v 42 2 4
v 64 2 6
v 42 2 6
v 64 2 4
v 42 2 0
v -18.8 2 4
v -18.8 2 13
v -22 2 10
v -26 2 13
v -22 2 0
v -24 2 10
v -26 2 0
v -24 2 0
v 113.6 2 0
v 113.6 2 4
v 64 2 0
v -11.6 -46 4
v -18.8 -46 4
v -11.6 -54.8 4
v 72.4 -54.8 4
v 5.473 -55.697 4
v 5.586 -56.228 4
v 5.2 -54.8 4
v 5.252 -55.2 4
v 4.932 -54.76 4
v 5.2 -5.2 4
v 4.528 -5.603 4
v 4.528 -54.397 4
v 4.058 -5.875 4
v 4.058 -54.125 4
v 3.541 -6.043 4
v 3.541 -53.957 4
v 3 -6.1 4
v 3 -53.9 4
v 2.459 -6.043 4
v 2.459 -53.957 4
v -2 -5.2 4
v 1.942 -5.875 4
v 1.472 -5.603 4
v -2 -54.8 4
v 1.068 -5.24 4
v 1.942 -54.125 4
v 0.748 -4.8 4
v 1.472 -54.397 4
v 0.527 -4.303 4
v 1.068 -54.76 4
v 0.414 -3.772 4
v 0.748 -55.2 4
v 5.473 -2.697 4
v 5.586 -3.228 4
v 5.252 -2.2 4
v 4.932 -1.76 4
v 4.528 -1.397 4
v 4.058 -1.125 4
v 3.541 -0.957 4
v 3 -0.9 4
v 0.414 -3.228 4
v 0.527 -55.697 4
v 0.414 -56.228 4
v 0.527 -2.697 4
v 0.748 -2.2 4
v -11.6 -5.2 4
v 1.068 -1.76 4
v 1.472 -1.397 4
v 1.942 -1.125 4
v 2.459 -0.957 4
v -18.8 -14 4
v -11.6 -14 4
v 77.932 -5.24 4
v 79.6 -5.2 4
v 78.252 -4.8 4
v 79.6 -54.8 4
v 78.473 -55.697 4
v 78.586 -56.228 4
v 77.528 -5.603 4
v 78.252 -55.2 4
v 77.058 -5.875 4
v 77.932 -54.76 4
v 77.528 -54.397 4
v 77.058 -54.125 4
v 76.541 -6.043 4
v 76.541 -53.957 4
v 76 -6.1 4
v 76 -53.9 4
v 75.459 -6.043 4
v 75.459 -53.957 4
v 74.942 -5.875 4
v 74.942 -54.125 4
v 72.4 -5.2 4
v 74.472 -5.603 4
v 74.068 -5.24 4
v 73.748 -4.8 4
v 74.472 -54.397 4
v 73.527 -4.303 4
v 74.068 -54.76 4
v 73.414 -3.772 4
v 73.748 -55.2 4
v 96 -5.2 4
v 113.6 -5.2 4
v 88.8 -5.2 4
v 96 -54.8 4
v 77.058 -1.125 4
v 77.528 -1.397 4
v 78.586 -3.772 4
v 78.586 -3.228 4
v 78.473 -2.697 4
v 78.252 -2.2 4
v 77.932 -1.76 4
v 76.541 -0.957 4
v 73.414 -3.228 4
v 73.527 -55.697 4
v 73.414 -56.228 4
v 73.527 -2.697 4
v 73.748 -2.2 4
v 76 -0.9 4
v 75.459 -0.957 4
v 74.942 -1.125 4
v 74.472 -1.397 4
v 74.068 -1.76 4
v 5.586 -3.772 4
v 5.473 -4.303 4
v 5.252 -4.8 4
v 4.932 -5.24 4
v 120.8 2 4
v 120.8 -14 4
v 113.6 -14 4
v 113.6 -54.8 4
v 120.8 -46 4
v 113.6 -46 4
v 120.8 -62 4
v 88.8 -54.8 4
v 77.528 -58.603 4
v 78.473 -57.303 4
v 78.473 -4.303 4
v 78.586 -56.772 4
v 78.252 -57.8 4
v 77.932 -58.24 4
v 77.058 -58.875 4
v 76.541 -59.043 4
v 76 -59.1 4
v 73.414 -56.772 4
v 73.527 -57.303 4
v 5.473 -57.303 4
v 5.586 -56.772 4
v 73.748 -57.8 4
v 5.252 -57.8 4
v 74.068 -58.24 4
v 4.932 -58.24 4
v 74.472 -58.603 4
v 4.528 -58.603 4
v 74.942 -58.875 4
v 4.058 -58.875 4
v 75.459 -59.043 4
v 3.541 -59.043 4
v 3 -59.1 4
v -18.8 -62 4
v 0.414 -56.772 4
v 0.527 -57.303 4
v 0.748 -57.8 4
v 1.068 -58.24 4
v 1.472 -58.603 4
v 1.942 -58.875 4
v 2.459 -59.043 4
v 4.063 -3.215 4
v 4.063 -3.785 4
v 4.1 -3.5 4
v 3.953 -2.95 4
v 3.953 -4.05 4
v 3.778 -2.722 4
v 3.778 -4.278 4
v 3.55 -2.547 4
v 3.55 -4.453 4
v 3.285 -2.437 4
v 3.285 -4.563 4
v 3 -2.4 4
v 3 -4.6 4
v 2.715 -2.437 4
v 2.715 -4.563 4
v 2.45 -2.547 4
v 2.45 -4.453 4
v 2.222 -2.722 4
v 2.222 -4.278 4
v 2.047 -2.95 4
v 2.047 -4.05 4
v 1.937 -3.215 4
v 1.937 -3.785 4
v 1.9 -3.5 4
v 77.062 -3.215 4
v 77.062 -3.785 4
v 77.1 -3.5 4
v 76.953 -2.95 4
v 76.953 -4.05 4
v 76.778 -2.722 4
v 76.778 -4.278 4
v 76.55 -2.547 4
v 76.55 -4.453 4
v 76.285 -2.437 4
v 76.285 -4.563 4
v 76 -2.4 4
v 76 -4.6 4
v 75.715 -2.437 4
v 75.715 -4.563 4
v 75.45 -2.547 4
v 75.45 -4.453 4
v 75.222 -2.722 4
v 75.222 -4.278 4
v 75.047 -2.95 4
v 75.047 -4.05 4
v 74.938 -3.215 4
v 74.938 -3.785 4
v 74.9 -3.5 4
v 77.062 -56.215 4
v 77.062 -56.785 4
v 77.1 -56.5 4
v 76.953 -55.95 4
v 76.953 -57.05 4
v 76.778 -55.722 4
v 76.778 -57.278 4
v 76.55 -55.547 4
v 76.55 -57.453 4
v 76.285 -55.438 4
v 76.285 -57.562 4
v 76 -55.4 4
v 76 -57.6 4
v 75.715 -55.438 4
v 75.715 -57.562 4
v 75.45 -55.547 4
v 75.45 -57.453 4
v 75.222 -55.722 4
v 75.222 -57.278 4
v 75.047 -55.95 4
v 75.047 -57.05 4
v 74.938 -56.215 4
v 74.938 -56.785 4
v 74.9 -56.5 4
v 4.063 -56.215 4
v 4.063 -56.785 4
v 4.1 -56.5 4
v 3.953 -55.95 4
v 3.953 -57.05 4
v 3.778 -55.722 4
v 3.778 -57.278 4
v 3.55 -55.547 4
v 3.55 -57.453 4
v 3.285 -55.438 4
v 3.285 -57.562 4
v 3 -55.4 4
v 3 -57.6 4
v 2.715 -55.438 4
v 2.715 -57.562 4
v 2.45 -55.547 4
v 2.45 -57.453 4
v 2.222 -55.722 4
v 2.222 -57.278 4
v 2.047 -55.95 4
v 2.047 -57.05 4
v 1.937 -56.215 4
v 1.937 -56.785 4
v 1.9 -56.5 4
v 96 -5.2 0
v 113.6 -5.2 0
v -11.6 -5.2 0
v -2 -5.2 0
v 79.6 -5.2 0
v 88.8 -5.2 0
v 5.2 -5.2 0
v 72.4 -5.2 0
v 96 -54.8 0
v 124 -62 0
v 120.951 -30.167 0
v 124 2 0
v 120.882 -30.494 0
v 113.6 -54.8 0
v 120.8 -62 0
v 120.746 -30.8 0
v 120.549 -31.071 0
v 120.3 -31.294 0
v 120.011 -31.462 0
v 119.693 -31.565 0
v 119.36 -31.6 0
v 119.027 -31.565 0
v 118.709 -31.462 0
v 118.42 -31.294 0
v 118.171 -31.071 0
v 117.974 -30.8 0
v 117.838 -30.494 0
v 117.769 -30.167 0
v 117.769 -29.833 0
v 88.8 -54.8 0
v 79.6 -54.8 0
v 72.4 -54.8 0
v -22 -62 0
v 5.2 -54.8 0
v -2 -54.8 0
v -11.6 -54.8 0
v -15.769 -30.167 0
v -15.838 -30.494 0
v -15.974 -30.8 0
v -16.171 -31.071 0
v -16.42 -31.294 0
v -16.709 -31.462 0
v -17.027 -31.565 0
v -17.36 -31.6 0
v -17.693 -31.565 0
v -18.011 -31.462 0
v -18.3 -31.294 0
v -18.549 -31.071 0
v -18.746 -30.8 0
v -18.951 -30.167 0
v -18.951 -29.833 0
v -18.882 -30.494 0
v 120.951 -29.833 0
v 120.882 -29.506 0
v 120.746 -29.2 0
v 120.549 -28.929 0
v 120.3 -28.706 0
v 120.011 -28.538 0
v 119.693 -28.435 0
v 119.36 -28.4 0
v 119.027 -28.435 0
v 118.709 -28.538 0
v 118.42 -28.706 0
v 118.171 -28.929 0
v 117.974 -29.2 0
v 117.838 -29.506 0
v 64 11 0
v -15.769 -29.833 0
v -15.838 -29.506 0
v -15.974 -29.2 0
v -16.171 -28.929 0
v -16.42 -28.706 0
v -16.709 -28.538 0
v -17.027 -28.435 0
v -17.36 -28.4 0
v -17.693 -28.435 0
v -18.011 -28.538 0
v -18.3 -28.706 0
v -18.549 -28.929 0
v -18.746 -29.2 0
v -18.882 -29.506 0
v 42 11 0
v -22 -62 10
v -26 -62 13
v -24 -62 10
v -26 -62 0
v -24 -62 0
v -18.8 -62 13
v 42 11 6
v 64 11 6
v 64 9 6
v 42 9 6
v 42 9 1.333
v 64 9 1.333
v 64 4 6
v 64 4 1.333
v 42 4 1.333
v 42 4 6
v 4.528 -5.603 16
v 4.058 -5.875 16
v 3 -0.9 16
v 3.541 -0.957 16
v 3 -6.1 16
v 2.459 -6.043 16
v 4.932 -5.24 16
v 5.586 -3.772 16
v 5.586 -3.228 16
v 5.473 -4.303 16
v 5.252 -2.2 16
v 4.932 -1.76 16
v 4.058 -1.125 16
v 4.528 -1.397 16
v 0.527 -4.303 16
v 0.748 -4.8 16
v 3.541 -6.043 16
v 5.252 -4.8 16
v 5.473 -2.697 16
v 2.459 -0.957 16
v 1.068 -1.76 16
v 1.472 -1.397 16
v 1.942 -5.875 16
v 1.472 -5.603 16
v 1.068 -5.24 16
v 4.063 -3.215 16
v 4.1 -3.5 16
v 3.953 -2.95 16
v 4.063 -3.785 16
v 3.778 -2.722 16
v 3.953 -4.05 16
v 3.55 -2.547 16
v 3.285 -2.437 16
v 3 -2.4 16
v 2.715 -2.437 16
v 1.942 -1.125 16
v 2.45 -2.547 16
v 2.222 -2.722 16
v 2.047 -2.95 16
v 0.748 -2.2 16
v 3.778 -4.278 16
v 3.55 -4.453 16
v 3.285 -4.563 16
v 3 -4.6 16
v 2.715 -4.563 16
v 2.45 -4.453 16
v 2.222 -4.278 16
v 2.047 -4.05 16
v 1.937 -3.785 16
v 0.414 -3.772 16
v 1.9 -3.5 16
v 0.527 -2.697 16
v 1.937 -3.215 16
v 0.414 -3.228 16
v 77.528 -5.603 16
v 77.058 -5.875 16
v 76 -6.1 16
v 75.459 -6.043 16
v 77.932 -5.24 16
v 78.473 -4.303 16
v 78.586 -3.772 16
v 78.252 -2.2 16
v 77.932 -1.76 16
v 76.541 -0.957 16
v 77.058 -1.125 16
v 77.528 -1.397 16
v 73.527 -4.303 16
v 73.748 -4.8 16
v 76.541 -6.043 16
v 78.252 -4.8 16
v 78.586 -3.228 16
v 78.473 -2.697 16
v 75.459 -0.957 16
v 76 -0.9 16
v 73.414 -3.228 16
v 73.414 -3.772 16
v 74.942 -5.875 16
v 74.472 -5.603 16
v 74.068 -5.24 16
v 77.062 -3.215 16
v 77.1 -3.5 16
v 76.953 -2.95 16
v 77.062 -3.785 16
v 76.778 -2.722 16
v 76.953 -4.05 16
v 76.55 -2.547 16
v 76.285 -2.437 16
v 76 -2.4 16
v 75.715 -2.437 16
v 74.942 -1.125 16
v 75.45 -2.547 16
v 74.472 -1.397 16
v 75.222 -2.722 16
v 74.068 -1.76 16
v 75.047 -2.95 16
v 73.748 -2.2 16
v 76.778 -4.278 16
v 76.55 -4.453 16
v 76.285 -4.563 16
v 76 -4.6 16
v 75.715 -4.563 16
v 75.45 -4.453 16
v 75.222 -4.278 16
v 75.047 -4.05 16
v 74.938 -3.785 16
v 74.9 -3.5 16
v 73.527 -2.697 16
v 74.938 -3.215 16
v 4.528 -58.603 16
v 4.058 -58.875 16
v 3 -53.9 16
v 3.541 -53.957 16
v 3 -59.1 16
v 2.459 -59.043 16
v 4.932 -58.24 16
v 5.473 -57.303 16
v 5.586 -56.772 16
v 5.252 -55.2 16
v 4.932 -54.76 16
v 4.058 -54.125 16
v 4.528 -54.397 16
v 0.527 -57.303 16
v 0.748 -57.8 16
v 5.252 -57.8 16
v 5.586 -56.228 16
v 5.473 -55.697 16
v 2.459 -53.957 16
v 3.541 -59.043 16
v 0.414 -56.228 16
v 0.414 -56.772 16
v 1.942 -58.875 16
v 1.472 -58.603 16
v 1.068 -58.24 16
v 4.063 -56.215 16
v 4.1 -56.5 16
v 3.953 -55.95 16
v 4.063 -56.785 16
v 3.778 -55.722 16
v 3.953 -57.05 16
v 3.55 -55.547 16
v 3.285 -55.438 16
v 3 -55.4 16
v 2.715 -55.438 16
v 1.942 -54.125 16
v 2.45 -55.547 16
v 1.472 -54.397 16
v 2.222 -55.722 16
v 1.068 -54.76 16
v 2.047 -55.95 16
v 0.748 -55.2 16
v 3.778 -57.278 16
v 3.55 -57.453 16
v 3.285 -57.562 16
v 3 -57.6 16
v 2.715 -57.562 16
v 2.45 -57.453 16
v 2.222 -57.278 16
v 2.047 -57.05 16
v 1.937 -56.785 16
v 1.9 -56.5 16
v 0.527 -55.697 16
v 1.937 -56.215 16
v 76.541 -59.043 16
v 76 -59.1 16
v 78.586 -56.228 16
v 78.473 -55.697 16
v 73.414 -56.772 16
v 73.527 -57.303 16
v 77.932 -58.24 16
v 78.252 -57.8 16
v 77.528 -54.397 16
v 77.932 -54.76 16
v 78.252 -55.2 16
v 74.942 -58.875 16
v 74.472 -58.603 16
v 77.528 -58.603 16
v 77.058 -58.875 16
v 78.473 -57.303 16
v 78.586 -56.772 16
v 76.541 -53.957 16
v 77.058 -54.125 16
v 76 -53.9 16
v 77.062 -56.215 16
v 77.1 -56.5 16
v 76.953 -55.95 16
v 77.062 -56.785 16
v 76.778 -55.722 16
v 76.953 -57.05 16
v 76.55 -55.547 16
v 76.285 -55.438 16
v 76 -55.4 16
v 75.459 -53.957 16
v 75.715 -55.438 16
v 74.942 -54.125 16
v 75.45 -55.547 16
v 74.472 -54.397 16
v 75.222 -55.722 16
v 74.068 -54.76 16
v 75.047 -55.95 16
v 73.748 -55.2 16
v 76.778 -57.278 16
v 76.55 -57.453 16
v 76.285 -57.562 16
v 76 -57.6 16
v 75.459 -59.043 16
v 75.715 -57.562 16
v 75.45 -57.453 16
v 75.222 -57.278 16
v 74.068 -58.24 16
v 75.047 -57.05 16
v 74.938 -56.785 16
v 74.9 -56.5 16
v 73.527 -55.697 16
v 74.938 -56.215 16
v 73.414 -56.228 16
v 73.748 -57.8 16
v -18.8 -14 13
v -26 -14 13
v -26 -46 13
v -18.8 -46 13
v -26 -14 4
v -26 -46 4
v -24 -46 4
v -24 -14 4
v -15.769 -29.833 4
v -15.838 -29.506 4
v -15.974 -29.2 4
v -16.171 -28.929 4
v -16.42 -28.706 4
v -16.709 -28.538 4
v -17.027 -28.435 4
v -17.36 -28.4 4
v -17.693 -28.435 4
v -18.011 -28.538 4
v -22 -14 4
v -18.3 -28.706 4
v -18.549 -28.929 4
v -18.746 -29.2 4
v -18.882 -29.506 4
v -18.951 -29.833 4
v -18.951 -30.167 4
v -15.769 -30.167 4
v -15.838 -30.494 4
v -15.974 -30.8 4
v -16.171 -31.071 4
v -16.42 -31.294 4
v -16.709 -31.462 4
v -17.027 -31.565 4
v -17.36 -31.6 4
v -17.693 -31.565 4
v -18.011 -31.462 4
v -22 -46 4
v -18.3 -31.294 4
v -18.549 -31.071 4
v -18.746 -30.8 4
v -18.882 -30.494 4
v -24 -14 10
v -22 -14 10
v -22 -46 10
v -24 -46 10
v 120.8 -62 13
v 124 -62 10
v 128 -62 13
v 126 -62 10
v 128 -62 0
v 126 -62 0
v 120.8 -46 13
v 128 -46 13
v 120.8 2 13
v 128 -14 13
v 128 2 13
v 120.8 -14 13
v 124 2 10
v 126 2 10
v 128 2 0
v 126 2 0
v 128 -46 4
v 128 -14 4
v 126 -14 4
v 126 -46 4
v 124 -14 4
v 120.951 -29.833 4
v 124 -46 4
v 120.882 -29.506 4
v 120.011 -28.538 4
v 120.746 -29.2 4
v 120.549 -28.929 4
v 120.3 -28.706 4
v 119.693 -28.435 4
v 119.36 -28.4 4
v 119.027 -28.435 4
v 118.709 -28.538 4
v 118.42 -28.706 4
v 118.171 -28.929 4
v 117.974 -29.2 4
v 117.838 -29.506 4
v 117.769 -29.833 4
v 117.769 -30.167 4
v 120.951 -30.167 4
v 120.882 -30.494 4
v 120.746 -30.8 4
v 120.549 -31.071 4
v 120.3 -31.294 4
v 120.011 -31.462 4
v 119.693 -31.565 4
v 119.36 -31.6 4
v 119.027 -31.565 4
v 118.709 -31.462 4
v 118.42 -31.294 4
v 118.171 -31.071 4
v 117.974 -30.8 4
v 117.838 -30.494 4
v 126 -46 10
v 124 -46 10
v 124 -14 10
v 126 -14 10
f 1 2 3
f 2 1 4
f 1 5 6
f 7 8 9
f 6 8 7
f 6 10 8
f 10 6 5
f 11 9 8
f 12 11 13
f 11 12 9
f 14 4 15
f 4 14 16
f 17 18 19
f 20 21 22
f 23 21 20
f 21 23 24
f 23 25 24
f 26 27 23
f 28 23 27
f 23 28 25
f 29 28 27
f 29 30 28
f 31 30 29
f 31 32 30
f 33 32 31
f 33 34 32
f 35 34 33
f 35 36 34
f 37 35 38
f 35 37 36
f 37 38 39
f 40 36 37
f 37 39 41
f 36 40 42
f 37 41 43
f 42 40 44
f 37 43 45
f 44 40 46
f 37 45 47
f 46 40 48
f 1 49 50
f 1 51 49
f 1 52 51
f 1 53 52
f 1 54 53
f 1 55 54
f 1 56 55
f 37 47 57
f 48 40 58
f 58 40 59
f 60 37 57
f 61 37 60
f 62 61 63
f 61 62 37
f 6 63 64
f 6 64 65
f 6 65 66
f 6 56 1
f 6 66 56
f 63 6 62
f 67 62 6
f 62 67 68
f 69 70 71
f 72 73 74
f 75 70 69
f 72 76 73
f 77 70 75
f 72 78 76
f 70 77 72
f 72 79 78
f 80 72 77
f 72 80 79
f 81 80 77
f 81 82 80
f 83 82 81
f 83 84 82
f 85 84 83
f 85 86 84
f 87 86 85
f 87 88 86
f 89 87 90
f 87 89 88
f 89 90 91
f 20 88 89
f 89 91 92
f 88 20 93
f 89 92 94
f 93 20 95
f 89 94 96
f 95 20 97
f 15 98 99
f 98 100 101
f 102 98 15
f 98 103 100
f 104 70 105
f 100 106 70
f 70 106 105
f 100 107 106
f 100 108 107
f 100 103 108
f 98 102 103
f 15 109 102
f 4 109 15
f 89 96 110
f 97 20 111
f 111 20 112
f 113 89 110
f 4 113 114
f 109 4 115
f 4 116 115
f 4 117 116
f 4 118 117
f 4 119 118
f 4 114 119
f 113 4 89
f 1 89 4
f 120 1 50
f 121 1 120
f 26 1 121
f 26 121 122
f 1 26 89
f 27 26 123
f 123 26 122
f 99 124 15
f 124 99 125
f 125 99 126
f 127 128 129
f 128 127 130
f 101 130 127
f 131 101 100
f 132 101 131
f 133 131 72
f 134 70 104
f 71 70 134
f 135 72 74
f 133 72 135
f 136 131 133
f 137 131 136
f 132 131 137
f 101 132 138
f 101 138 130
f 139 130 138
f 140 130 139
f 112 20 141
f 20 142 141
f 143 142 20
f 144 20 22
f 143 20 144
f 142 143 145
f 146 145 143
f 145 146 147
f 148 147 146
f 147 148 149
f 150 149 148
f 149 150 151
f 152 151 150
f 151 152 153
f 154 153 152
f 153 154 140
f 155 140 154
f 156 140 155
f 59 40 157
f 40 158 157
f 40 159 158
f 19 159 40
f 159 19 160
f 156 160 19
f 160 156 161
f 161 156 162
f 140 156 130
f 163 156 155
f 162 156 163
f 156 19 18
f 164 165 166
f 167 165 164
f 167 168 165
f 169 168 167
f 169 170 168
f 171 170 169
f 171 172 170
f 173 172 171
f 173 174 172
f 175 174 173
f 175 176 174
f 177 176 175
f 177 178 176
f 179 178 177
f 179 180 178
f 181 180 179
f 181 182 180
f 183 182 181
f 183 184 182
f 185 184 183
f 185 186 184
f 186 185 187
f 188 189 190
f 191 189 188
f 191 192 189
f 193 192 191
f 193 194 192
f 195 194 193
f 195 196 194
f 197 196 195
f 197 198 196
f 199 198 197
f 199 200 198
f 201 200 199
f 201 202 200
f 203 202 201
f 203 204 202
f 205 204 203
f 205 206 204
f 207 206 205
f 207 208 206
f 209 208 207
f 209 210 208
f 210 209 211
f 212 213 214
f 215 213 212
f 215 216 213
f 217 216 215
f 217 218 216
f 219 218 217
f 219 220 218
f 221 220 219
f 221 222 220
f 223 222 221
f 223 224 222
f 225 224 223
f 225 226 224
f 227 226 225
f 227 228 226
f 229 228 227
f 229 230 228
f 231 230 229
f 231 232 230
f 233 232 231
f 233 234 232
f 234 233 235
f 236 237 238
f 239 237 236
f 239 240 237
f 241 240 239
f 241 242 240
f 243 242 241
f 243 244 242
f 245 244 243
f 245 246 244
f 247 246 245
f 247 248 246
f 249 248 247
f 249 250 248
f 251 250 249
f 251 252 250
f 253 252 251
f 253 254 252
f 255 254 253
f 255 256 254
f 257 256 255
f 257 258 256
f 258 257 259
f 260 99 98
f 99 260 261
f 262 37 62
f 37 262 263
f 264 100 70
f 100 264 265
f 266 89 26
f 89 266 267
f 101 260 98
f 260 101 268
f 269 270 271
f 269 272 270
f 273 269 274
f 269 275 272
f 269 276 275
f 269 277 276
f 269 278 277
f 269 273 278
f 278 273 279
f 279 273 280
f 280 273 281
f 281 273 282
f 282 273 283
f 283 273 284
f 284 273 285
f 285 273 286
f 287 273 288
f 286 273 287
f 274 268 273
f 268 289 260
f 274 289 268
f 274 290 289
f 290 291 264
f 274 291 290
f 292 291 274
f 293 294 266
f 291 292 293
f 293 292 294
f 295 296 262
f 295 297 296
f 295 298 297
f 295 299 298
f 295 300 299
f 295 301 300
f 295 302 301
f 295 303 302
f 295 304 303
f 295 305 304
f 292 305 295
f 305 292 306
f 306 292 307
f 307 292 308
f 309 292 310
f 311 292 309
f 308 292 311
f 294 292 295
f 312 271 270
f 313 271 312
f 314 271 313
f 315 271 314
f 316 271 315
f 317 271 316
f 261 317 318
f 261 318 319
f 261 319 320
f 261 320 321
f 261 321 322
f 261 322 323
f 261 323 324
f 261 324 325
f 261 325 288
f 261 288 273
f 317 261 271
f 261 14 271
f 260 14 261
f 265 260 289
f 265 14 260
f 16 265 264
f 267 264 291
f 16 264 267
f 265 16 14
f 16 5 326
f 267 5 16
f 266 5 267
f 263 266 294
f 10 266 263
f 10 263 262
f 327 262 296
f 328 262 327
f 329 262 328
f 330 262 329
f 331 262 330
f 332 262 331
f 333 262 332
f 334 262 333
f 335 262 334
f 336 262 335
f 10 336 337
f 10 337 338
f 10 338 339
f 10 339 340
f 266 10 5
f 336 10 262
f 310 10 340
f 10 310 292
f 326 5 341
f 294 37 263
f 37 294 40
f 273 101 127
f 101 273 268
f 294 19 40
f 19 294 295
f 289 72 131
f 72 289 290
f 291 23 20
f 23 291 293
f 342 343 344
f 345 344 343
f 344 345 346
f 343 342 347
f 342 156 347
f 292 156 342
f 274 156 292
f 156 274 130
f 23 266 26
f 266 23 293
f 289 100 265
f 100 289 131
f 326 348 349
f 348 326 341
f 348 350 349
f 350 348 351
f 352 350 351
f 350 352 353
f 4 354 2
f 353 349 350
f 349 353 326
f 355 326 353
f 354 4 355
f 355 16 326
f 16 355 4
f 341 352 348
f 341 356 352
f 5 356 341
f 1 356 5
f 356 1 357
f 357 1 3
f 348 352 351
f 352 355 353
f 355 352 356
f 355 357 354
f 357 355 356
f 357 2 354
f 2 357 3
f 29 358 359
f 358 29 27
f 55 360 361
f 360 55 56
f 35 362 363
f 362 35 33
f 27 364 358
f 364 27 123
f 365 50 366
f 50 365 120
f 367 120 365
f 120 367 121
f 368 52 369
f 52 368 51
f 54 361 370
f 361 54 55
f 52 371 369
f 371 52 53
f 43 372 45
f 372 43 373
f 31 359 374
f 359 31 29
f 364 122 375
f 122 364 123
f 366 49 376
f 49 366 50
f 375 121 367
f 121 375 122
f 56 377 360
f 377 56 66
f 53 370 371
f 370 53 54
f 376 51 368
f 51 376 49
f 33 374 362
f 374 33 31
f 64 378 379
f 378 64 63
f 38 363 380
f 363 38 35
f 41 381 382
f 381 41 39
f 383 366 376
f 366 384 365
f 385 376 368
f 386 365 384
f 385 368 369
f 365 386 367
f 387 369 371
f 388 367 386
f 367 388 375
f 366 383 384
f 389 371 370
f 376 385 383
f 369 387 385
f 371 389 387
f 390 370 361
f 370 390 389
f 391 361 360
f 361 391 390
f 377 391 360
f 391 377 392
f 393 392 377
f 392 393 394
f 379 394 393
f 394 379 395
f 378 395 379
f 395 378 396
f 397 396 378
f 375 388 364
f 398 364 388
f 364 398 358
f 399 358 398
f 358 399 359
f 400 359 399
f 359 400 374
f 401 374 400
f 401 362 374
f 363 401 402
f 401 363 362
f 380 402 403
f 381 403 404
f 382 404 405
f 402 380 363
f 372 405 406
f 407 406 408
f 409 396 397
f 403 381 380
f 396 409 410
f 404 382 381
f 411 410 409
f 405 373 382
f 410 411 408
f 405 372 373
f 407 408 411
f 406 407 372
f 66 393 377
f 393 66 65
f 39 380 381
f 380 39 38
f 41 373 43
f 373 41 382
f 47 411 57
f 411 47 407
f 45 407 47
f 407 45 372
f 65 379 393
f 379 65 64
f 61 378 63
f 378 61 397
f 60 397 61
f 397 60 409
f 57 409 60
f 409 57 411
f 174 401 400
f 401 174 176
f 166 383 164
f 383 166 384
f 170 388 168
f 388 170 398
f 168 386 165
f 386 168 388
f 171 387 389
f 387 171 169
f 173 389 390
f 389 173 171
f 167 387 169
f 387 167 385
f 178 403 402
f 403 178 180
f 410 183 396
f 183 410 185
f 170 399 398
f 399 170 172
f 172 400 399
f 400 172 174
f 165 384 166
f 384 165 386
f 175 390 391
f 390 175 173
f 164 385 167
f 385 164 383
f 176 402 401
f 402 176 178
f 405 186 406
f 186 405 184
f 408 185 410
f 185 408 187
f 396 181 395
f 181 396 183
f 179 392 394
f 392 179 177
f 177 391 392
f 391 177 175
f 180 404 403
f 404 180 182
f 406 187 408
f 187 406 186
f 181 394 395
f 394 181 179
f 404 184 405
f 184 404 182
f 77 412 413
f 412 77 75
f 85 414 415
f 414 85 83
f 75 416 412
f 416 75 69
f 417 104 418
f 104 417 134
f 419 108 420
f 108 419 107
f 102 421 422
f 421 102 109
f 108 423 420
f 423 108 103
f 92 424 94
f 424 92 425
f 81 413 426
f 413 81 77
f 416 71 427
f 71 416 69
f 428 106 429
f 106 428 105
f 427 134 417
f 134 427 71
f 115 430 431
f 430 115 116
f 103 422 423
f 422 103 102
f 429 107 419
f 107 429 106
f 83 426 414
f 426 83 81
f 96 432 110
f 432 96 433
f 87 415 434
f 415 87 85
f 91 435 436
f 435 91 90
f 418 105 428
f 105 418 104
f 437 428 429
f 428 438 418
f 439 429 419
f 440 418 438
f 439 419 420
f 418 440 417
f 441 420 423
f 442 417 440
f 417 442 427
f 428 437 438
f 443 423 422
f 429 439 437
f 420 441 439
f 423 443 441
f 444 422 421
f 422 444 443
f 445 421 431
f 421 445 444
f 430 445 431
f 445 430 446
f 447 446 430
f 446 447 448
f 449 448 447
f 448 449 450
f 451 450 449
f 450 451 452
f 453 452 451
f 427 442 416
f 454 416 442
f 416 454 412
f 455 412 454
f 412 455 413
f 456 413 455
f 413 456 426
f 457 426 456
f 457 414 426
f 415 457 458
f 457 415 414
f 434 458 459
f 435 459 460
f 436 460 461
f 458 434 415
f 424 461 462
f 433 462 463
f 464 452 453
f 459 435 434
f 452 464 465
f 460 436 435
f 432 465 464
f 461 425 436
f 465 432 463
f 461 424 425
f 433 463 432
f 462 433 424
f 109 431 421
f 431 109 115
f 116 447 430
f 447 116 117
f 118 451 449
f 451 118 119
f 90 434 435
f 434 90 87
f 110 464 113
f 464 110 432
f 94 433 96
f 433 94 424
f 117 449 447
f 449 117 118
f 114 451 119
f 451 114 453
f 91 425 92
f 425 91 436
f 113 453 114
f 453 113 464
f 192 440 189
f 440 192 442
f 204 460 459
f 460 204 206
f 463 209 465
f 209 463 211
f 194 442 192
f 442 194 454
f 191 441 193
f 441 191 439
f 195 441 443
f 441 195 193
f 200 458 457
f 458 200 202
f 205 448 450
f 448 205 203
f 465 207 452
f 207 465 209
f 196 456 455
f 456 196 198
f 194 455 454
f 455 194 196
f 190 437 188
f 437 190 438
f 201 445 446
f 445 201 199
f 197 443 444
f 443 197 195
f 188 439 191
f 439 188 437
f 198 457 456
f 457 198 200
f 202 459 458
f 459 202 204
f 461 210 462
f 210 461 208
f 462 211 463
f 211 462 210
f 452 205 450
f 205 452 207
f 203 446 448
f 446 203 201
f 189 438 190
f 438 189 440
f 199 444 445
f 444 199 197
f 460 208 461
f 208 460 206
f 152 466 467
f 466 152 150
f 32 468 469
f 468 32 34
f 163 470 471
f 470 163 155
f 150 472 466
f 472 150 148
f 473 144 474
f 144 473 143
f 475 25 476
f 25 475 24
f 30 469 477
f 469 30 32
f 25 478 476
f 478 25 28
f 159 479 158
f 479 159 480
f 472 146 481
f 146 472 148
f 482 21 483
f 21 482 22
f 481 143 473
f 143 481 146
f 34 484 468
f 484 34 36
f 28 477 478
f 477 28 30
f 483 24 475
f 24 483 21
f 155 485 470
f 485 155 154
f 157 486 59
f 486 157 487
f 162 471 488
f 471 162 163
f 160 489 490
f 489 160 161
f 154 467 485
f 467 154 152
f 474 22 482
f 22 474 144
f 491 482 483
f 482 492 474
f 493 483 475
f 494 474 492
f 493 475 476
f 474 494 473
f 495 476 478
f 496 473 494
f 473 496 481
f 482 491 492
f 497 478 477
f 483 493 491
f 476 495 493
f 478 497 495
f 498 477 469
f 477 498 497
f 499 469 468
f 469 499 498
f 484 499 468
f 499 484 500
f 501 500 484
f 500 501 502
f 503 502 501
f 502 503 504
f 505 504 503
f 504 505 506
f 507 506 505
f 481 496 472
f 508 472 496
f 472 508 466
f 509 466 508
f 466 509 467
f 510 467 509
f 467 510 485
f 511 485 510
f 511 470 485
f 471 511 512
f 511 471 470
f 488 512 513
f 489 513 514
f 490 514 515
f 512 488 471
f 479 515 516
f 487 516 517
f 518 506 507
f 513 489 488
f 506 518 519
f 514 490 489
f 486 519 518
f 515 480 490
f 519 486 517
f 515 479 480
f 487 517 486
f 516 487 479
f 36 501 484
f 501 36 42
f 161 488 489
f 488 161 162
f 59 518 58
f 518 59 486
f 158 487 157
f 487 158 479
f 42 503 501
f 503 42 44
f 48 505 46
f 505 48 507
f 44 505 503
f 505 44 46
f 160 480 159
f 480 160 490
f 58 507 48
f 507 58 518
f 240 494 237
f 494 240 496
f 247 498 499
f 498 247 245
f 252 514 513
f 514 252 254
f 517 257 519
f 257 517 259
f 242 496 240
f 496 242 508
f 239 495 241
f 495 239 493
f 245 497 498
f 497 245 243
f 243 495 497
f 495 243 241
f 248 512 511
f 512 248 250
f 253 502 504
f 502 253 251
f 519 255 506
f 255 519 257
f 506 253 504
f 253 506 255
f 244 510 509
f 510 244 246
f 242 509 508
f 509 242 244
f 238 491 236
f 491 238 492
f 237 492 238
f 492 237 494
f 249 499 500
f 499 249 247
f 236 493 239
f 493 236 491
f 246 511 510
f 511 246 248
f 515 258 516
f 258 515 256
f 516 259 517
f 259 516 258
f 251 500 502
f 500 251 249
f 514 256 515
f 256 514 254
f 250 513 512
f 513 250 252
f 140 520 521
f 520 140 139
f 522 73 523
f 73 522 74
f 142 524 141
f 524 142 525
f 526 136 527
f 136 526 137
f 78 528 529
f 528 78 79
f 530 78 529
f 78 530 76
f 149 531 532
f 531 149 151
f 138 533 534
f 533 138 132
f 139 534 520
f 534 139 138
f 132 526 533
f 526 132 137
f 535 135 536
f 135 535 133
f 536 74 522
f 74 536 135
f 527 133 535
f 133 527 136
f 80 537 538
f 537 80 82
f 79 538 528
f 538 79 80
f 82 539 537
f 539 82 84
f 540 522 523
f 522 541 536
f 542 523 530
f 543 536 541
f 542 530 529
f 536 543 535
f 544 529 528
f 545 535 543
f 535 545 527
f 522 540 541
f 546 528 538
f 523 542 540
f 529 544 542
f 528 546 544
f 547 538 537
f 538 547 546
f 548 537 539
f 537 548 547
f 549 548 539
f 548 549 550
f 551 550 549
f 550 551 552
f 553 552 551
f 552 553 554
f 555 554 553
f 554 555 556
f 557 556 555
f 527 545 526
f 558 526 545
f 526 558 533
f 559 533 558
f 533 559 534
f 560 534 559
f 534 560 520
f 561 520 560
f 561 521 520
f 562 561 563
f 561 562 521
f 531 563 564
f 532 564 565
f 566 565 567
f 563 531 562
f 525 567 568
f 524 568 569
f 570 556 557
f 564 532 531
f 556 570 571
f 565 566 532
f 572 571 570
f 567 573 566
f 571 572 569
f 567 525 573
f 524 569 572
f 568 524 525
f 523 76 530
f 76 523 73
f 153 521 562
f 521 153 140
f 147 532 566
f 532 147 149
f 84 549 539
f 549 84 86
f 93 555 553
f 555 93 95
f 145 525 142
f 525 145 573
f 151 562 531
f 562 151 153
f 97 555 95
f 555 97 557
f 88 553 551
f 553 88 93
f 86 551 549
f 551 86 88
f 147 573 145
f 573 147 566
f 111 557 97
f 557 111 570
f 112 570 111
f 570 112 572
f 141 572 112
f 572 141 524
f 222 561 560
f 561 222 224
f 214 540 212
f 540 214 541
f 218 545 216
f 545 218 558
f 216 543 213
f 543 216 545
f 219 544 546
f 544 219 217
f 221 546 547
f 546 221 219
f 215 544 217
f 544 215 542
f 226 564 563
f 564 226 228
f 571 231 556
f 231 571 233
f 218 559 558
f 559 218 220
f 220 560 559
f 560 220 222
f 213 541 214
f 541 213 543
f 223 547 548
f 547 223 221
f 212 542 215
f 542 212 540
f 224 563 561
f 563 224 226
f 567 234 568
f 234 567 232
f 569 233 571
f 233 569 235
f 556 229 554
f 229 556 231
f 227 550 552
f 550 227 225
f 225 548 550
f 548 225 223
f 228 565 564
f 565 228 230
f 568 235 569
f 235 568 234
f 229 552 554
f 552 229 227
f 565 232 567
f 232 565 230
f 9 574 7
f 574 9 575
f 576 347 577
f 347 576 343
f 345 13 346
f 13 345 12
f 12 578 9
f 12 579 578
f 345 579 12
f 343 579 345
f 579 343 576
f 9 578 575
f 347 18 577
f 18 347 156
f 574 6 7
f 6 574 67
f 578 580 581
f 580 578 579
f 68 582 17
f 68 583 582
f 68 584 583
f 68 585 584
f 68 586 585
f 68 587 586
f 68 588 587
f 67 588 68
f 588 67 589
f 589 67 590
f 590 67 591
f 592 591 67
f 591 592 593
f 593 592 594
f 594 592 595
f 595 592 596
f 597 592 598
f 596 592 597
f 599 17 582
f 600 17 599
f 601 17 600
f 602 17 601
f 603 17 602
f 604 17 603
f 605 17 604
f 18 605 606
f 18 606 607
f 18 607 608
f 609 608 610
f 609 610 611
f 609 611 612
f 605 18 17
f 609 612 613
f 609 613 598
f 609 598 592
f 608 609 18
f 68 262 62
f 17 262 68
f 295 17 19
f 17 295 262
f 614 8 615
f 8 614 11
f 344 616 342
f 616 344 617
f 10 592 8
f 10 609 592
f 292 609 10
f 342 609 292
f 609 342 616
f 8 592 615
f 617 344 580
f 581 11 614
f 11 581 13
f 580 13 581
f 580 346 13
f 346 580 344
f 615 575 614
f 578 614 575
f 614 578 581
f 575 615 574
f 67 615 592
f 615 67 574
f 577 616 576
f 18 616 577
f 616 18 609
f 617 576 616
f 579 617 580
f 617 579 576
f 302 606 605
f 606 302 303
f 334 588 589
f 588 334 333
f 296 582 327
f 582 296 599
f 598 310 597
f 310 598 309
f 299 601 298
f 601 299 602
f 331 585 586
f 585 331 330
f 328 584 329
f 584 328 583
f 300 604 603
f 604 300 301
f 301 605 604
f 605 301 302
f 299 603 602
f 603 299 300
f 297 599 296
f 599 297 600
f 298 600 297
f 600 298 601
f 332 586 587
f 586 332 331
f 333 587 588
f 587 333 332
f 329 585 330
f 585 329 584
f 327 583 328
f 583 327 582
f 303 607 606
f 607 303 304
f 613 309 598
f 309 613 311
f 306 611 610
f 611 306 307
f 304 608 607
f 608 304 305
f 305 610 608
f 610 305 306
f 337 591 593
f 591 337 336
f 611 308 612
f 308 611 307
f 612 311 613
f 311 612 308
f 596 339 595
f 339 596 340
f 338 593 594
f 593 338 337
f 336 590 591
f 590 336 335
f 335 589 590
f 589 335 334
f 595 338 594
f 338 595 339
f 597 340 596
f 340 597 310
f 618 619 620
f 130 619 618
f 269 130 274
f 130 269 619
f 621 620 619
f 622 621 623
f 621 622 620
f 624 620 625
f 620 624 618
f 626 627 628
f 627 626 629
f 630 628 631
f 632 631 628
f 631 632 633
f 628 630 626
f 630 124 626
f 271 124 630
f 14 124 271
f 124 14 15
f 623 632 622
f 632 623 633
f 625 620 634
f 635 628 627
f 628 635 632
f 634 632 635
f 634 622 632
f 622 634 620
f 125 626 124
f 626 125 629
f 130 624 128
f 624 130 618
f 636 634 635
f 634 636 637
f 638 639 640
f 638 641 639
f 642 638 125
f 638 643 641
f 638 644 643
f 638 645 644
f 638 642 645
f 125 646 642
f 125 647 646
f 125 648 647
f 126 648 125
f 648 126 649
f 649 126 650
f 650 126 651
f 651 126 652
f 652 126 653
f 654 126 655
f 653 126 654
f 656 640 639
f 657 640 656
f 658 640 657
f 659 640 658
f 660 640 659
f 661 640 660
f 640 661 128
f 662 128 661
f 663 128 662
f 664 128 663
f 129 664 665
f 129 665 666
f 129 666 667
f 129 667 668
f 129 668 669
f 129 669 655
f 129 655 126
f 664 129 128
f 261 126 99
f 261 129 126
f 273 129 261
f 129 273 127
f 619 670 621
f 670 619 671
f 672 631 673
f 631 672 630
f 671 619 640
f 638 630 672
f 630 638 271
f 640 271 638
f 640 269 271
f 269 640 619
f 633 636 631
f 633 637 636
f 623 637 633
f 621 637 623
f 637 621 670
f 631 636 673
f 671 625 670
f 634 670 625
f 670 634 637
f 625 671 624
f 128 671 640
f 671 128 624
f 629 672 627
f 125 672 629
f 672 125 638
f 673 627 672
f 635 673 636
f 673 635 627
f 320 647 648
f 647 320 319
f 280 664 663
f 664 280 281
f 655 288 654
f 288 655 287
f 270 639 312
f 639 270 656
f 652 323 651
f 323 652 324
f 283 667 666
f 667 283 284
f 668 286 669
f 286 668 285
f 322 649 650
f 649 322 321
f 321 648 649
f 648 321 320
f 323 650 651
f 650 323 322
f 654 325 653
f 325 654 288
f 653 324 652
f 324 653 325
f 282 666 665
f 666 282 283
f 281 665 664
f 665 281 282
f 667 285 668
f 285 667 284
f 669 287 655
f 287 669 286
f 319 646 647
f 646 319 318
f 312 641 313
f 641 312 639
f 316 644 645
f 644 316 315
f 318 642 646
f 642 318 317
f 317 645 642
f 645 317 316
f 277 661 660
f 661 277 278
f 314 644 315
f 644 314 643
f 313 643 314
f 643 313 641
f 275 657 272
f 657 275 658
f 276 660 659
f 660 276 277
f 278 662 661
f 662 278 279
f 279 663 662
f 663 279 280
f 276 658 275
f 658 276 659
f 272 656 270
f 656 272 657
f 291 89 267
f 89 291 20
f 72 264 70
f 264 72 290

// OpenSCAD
bw = 60; // Board width
bh = 94; // Board height
spdw = 53; // Small pin delta width (center to center)
spdh = 73; // Small pin delta height (center to center)
spoh = 3; // Small pin delta (in height direction) from board edge 
spow = (bw-spdw)/2; // Small pin offset Y from board edge 
h = 4; // Height of plate
ph = 25; // Pin height
pr = 4; // Large pin radius
pbr = pr*1.7; // Large pin base radius
pow = pbr/2; // Offset from board to  large pin center
poh = pbr/2; // Offset from board to  large pin center
spr = 2.6; // Small pin radius
sph = 12;//3; // Small pin height
xbs = 2; // Extra board size
beam = spr*2;
antd = 5; // antenne diameter
antl = 22; // antenna length

fmw = bw+xbs*2; // frame mount width
fmh = 154; // frame mount height
fmwofs = (fmw - bw) / 2 - xbs;
fmhofs = (fmh - bh) *0.40;
fmgap = 2;
fmgapofs = 2;

module pin_with_hole(posx, posy,goUp, ph=ph) {
  difference() {
    r = pbr;
    r1 = pr;
    r2 = r1*0.6;
    union() {
      translate([posx, posy, 0])
        cylinder(r=r, h, $fs=.3);
      if (goUp) {
        translate([posx, posy, h])
          cylinder(r=r1, ph, $fs=.3);
        translate([posx ,posy, ph+h], $fs=.3)
          cylinder(r=r2, h, $fs=.3);
        translate([posx ,posy, ph+h*2], $fs=.3)
          sphere(r=r2, $fs=.3);
      } else {
        translate([posx ,posy, h], $fs=.3)
          cylinder(r=r1, h*1.5, $fs=.3);        
        translate([posx ,posy, h*2.5], $fs=.3)
          sphere(r=r1, $fs=.3);
      }
    }
    // Create hole for upper pin to fit in
    translate([posx, posy, 0])
      cylinder(r=r2+0.2, h*2, $fs=.3);
  }
}

module small_pin(posx, posy) {
  difference() {
  translate([posx, posy, 0])
    cylinder(r=spr, h+sph, $fs=.3);
  translate([posx, posy, 0])
    cylinder(r=1.1, h+sph+5, $fs=.3);
  }
}

module frame() {
  translate([-xbs,-(xbs),0]) {
    translate([0,0,0])
      cube([beam+xbs, bh+xbs*2, h]);
    translate([bw+xbs*2-(beam+xbs),0,0])
      cube([beam+xbs, bh+xbs*2, h]);
    translate([0,0,0])
      cube([bw+xbs*2, beam+xbs, h]);
    translate([0,bh+xbs*2-(beam+xbs),0])
      cube([bw+xbs*2, beam+xbs, h]);
  }
}

module frameMountEdge(d, eh, gaph) {
  difference() {
    union() {
      cube([fmw, d, eh]);
      cube([fmw, d*2, h]);
    }
    translate([0,fmgapofs,0])
      cube([fmw, fmgap, gaph]);
    translate([fmw/4,0,h])
      cube(fmw/2,d*2,eh-h);
    translate([fmw/2, d*1.2, 0])
      cylinder(r=1.6, h, $fs=.3);
  }
}

module frameMount() {
  d = beam+xbs;
  gaph = 10;
  eh = gaph+3;
  translate([-(xbs+fmwofs),-(xbs+fmhofs),0]) {
    translate([0,d,0])
      cube([d, fmh-d*2, h]);
    translate([fmw-(d),d,0])
      cube([d, fmh-d*2, h]);
    translate([0,0,0])
      frameMountEdge(d, eh, gaph);
    translate([fmw,fmh,0])
      rotate([0,0,180])
      frameMountEdge(d, eh, gaph);
  }
}

module cluster() {
    rotate([0,0,-90]) {
        union() {
          difference() {
            union() {
              // Outside frame
              frame();
              // Frame mount
              frameMount();
              // Crossbar
              translate([-xbs,spoh+spdh-((beam+xbs)/2),0])
                cube([bw+xbs*2, beam+xbs, h]);
              // Small PCB pins
              small_pin(spow, spoh);
              small_pin(spow, spoh+spdh);
              small_pin(spow+spdw, spoh);
              small_pin(spow+spdw, spoh+spdh);
            }
          }
          // Antenna holder
          translate([-1*(xbs+h+antd), bw*0.7, 0])
            union() {
              translate([0,0,0])
                cube([h/2, antl, h*1.5]);
              translate([h/2,0,0])
                cube([antd, antl, h/3]);
              translate([h/2+antd,0,0])
                cube([h/2, antl, h*1.5]);
            }

        }
    }
}

cluster();
